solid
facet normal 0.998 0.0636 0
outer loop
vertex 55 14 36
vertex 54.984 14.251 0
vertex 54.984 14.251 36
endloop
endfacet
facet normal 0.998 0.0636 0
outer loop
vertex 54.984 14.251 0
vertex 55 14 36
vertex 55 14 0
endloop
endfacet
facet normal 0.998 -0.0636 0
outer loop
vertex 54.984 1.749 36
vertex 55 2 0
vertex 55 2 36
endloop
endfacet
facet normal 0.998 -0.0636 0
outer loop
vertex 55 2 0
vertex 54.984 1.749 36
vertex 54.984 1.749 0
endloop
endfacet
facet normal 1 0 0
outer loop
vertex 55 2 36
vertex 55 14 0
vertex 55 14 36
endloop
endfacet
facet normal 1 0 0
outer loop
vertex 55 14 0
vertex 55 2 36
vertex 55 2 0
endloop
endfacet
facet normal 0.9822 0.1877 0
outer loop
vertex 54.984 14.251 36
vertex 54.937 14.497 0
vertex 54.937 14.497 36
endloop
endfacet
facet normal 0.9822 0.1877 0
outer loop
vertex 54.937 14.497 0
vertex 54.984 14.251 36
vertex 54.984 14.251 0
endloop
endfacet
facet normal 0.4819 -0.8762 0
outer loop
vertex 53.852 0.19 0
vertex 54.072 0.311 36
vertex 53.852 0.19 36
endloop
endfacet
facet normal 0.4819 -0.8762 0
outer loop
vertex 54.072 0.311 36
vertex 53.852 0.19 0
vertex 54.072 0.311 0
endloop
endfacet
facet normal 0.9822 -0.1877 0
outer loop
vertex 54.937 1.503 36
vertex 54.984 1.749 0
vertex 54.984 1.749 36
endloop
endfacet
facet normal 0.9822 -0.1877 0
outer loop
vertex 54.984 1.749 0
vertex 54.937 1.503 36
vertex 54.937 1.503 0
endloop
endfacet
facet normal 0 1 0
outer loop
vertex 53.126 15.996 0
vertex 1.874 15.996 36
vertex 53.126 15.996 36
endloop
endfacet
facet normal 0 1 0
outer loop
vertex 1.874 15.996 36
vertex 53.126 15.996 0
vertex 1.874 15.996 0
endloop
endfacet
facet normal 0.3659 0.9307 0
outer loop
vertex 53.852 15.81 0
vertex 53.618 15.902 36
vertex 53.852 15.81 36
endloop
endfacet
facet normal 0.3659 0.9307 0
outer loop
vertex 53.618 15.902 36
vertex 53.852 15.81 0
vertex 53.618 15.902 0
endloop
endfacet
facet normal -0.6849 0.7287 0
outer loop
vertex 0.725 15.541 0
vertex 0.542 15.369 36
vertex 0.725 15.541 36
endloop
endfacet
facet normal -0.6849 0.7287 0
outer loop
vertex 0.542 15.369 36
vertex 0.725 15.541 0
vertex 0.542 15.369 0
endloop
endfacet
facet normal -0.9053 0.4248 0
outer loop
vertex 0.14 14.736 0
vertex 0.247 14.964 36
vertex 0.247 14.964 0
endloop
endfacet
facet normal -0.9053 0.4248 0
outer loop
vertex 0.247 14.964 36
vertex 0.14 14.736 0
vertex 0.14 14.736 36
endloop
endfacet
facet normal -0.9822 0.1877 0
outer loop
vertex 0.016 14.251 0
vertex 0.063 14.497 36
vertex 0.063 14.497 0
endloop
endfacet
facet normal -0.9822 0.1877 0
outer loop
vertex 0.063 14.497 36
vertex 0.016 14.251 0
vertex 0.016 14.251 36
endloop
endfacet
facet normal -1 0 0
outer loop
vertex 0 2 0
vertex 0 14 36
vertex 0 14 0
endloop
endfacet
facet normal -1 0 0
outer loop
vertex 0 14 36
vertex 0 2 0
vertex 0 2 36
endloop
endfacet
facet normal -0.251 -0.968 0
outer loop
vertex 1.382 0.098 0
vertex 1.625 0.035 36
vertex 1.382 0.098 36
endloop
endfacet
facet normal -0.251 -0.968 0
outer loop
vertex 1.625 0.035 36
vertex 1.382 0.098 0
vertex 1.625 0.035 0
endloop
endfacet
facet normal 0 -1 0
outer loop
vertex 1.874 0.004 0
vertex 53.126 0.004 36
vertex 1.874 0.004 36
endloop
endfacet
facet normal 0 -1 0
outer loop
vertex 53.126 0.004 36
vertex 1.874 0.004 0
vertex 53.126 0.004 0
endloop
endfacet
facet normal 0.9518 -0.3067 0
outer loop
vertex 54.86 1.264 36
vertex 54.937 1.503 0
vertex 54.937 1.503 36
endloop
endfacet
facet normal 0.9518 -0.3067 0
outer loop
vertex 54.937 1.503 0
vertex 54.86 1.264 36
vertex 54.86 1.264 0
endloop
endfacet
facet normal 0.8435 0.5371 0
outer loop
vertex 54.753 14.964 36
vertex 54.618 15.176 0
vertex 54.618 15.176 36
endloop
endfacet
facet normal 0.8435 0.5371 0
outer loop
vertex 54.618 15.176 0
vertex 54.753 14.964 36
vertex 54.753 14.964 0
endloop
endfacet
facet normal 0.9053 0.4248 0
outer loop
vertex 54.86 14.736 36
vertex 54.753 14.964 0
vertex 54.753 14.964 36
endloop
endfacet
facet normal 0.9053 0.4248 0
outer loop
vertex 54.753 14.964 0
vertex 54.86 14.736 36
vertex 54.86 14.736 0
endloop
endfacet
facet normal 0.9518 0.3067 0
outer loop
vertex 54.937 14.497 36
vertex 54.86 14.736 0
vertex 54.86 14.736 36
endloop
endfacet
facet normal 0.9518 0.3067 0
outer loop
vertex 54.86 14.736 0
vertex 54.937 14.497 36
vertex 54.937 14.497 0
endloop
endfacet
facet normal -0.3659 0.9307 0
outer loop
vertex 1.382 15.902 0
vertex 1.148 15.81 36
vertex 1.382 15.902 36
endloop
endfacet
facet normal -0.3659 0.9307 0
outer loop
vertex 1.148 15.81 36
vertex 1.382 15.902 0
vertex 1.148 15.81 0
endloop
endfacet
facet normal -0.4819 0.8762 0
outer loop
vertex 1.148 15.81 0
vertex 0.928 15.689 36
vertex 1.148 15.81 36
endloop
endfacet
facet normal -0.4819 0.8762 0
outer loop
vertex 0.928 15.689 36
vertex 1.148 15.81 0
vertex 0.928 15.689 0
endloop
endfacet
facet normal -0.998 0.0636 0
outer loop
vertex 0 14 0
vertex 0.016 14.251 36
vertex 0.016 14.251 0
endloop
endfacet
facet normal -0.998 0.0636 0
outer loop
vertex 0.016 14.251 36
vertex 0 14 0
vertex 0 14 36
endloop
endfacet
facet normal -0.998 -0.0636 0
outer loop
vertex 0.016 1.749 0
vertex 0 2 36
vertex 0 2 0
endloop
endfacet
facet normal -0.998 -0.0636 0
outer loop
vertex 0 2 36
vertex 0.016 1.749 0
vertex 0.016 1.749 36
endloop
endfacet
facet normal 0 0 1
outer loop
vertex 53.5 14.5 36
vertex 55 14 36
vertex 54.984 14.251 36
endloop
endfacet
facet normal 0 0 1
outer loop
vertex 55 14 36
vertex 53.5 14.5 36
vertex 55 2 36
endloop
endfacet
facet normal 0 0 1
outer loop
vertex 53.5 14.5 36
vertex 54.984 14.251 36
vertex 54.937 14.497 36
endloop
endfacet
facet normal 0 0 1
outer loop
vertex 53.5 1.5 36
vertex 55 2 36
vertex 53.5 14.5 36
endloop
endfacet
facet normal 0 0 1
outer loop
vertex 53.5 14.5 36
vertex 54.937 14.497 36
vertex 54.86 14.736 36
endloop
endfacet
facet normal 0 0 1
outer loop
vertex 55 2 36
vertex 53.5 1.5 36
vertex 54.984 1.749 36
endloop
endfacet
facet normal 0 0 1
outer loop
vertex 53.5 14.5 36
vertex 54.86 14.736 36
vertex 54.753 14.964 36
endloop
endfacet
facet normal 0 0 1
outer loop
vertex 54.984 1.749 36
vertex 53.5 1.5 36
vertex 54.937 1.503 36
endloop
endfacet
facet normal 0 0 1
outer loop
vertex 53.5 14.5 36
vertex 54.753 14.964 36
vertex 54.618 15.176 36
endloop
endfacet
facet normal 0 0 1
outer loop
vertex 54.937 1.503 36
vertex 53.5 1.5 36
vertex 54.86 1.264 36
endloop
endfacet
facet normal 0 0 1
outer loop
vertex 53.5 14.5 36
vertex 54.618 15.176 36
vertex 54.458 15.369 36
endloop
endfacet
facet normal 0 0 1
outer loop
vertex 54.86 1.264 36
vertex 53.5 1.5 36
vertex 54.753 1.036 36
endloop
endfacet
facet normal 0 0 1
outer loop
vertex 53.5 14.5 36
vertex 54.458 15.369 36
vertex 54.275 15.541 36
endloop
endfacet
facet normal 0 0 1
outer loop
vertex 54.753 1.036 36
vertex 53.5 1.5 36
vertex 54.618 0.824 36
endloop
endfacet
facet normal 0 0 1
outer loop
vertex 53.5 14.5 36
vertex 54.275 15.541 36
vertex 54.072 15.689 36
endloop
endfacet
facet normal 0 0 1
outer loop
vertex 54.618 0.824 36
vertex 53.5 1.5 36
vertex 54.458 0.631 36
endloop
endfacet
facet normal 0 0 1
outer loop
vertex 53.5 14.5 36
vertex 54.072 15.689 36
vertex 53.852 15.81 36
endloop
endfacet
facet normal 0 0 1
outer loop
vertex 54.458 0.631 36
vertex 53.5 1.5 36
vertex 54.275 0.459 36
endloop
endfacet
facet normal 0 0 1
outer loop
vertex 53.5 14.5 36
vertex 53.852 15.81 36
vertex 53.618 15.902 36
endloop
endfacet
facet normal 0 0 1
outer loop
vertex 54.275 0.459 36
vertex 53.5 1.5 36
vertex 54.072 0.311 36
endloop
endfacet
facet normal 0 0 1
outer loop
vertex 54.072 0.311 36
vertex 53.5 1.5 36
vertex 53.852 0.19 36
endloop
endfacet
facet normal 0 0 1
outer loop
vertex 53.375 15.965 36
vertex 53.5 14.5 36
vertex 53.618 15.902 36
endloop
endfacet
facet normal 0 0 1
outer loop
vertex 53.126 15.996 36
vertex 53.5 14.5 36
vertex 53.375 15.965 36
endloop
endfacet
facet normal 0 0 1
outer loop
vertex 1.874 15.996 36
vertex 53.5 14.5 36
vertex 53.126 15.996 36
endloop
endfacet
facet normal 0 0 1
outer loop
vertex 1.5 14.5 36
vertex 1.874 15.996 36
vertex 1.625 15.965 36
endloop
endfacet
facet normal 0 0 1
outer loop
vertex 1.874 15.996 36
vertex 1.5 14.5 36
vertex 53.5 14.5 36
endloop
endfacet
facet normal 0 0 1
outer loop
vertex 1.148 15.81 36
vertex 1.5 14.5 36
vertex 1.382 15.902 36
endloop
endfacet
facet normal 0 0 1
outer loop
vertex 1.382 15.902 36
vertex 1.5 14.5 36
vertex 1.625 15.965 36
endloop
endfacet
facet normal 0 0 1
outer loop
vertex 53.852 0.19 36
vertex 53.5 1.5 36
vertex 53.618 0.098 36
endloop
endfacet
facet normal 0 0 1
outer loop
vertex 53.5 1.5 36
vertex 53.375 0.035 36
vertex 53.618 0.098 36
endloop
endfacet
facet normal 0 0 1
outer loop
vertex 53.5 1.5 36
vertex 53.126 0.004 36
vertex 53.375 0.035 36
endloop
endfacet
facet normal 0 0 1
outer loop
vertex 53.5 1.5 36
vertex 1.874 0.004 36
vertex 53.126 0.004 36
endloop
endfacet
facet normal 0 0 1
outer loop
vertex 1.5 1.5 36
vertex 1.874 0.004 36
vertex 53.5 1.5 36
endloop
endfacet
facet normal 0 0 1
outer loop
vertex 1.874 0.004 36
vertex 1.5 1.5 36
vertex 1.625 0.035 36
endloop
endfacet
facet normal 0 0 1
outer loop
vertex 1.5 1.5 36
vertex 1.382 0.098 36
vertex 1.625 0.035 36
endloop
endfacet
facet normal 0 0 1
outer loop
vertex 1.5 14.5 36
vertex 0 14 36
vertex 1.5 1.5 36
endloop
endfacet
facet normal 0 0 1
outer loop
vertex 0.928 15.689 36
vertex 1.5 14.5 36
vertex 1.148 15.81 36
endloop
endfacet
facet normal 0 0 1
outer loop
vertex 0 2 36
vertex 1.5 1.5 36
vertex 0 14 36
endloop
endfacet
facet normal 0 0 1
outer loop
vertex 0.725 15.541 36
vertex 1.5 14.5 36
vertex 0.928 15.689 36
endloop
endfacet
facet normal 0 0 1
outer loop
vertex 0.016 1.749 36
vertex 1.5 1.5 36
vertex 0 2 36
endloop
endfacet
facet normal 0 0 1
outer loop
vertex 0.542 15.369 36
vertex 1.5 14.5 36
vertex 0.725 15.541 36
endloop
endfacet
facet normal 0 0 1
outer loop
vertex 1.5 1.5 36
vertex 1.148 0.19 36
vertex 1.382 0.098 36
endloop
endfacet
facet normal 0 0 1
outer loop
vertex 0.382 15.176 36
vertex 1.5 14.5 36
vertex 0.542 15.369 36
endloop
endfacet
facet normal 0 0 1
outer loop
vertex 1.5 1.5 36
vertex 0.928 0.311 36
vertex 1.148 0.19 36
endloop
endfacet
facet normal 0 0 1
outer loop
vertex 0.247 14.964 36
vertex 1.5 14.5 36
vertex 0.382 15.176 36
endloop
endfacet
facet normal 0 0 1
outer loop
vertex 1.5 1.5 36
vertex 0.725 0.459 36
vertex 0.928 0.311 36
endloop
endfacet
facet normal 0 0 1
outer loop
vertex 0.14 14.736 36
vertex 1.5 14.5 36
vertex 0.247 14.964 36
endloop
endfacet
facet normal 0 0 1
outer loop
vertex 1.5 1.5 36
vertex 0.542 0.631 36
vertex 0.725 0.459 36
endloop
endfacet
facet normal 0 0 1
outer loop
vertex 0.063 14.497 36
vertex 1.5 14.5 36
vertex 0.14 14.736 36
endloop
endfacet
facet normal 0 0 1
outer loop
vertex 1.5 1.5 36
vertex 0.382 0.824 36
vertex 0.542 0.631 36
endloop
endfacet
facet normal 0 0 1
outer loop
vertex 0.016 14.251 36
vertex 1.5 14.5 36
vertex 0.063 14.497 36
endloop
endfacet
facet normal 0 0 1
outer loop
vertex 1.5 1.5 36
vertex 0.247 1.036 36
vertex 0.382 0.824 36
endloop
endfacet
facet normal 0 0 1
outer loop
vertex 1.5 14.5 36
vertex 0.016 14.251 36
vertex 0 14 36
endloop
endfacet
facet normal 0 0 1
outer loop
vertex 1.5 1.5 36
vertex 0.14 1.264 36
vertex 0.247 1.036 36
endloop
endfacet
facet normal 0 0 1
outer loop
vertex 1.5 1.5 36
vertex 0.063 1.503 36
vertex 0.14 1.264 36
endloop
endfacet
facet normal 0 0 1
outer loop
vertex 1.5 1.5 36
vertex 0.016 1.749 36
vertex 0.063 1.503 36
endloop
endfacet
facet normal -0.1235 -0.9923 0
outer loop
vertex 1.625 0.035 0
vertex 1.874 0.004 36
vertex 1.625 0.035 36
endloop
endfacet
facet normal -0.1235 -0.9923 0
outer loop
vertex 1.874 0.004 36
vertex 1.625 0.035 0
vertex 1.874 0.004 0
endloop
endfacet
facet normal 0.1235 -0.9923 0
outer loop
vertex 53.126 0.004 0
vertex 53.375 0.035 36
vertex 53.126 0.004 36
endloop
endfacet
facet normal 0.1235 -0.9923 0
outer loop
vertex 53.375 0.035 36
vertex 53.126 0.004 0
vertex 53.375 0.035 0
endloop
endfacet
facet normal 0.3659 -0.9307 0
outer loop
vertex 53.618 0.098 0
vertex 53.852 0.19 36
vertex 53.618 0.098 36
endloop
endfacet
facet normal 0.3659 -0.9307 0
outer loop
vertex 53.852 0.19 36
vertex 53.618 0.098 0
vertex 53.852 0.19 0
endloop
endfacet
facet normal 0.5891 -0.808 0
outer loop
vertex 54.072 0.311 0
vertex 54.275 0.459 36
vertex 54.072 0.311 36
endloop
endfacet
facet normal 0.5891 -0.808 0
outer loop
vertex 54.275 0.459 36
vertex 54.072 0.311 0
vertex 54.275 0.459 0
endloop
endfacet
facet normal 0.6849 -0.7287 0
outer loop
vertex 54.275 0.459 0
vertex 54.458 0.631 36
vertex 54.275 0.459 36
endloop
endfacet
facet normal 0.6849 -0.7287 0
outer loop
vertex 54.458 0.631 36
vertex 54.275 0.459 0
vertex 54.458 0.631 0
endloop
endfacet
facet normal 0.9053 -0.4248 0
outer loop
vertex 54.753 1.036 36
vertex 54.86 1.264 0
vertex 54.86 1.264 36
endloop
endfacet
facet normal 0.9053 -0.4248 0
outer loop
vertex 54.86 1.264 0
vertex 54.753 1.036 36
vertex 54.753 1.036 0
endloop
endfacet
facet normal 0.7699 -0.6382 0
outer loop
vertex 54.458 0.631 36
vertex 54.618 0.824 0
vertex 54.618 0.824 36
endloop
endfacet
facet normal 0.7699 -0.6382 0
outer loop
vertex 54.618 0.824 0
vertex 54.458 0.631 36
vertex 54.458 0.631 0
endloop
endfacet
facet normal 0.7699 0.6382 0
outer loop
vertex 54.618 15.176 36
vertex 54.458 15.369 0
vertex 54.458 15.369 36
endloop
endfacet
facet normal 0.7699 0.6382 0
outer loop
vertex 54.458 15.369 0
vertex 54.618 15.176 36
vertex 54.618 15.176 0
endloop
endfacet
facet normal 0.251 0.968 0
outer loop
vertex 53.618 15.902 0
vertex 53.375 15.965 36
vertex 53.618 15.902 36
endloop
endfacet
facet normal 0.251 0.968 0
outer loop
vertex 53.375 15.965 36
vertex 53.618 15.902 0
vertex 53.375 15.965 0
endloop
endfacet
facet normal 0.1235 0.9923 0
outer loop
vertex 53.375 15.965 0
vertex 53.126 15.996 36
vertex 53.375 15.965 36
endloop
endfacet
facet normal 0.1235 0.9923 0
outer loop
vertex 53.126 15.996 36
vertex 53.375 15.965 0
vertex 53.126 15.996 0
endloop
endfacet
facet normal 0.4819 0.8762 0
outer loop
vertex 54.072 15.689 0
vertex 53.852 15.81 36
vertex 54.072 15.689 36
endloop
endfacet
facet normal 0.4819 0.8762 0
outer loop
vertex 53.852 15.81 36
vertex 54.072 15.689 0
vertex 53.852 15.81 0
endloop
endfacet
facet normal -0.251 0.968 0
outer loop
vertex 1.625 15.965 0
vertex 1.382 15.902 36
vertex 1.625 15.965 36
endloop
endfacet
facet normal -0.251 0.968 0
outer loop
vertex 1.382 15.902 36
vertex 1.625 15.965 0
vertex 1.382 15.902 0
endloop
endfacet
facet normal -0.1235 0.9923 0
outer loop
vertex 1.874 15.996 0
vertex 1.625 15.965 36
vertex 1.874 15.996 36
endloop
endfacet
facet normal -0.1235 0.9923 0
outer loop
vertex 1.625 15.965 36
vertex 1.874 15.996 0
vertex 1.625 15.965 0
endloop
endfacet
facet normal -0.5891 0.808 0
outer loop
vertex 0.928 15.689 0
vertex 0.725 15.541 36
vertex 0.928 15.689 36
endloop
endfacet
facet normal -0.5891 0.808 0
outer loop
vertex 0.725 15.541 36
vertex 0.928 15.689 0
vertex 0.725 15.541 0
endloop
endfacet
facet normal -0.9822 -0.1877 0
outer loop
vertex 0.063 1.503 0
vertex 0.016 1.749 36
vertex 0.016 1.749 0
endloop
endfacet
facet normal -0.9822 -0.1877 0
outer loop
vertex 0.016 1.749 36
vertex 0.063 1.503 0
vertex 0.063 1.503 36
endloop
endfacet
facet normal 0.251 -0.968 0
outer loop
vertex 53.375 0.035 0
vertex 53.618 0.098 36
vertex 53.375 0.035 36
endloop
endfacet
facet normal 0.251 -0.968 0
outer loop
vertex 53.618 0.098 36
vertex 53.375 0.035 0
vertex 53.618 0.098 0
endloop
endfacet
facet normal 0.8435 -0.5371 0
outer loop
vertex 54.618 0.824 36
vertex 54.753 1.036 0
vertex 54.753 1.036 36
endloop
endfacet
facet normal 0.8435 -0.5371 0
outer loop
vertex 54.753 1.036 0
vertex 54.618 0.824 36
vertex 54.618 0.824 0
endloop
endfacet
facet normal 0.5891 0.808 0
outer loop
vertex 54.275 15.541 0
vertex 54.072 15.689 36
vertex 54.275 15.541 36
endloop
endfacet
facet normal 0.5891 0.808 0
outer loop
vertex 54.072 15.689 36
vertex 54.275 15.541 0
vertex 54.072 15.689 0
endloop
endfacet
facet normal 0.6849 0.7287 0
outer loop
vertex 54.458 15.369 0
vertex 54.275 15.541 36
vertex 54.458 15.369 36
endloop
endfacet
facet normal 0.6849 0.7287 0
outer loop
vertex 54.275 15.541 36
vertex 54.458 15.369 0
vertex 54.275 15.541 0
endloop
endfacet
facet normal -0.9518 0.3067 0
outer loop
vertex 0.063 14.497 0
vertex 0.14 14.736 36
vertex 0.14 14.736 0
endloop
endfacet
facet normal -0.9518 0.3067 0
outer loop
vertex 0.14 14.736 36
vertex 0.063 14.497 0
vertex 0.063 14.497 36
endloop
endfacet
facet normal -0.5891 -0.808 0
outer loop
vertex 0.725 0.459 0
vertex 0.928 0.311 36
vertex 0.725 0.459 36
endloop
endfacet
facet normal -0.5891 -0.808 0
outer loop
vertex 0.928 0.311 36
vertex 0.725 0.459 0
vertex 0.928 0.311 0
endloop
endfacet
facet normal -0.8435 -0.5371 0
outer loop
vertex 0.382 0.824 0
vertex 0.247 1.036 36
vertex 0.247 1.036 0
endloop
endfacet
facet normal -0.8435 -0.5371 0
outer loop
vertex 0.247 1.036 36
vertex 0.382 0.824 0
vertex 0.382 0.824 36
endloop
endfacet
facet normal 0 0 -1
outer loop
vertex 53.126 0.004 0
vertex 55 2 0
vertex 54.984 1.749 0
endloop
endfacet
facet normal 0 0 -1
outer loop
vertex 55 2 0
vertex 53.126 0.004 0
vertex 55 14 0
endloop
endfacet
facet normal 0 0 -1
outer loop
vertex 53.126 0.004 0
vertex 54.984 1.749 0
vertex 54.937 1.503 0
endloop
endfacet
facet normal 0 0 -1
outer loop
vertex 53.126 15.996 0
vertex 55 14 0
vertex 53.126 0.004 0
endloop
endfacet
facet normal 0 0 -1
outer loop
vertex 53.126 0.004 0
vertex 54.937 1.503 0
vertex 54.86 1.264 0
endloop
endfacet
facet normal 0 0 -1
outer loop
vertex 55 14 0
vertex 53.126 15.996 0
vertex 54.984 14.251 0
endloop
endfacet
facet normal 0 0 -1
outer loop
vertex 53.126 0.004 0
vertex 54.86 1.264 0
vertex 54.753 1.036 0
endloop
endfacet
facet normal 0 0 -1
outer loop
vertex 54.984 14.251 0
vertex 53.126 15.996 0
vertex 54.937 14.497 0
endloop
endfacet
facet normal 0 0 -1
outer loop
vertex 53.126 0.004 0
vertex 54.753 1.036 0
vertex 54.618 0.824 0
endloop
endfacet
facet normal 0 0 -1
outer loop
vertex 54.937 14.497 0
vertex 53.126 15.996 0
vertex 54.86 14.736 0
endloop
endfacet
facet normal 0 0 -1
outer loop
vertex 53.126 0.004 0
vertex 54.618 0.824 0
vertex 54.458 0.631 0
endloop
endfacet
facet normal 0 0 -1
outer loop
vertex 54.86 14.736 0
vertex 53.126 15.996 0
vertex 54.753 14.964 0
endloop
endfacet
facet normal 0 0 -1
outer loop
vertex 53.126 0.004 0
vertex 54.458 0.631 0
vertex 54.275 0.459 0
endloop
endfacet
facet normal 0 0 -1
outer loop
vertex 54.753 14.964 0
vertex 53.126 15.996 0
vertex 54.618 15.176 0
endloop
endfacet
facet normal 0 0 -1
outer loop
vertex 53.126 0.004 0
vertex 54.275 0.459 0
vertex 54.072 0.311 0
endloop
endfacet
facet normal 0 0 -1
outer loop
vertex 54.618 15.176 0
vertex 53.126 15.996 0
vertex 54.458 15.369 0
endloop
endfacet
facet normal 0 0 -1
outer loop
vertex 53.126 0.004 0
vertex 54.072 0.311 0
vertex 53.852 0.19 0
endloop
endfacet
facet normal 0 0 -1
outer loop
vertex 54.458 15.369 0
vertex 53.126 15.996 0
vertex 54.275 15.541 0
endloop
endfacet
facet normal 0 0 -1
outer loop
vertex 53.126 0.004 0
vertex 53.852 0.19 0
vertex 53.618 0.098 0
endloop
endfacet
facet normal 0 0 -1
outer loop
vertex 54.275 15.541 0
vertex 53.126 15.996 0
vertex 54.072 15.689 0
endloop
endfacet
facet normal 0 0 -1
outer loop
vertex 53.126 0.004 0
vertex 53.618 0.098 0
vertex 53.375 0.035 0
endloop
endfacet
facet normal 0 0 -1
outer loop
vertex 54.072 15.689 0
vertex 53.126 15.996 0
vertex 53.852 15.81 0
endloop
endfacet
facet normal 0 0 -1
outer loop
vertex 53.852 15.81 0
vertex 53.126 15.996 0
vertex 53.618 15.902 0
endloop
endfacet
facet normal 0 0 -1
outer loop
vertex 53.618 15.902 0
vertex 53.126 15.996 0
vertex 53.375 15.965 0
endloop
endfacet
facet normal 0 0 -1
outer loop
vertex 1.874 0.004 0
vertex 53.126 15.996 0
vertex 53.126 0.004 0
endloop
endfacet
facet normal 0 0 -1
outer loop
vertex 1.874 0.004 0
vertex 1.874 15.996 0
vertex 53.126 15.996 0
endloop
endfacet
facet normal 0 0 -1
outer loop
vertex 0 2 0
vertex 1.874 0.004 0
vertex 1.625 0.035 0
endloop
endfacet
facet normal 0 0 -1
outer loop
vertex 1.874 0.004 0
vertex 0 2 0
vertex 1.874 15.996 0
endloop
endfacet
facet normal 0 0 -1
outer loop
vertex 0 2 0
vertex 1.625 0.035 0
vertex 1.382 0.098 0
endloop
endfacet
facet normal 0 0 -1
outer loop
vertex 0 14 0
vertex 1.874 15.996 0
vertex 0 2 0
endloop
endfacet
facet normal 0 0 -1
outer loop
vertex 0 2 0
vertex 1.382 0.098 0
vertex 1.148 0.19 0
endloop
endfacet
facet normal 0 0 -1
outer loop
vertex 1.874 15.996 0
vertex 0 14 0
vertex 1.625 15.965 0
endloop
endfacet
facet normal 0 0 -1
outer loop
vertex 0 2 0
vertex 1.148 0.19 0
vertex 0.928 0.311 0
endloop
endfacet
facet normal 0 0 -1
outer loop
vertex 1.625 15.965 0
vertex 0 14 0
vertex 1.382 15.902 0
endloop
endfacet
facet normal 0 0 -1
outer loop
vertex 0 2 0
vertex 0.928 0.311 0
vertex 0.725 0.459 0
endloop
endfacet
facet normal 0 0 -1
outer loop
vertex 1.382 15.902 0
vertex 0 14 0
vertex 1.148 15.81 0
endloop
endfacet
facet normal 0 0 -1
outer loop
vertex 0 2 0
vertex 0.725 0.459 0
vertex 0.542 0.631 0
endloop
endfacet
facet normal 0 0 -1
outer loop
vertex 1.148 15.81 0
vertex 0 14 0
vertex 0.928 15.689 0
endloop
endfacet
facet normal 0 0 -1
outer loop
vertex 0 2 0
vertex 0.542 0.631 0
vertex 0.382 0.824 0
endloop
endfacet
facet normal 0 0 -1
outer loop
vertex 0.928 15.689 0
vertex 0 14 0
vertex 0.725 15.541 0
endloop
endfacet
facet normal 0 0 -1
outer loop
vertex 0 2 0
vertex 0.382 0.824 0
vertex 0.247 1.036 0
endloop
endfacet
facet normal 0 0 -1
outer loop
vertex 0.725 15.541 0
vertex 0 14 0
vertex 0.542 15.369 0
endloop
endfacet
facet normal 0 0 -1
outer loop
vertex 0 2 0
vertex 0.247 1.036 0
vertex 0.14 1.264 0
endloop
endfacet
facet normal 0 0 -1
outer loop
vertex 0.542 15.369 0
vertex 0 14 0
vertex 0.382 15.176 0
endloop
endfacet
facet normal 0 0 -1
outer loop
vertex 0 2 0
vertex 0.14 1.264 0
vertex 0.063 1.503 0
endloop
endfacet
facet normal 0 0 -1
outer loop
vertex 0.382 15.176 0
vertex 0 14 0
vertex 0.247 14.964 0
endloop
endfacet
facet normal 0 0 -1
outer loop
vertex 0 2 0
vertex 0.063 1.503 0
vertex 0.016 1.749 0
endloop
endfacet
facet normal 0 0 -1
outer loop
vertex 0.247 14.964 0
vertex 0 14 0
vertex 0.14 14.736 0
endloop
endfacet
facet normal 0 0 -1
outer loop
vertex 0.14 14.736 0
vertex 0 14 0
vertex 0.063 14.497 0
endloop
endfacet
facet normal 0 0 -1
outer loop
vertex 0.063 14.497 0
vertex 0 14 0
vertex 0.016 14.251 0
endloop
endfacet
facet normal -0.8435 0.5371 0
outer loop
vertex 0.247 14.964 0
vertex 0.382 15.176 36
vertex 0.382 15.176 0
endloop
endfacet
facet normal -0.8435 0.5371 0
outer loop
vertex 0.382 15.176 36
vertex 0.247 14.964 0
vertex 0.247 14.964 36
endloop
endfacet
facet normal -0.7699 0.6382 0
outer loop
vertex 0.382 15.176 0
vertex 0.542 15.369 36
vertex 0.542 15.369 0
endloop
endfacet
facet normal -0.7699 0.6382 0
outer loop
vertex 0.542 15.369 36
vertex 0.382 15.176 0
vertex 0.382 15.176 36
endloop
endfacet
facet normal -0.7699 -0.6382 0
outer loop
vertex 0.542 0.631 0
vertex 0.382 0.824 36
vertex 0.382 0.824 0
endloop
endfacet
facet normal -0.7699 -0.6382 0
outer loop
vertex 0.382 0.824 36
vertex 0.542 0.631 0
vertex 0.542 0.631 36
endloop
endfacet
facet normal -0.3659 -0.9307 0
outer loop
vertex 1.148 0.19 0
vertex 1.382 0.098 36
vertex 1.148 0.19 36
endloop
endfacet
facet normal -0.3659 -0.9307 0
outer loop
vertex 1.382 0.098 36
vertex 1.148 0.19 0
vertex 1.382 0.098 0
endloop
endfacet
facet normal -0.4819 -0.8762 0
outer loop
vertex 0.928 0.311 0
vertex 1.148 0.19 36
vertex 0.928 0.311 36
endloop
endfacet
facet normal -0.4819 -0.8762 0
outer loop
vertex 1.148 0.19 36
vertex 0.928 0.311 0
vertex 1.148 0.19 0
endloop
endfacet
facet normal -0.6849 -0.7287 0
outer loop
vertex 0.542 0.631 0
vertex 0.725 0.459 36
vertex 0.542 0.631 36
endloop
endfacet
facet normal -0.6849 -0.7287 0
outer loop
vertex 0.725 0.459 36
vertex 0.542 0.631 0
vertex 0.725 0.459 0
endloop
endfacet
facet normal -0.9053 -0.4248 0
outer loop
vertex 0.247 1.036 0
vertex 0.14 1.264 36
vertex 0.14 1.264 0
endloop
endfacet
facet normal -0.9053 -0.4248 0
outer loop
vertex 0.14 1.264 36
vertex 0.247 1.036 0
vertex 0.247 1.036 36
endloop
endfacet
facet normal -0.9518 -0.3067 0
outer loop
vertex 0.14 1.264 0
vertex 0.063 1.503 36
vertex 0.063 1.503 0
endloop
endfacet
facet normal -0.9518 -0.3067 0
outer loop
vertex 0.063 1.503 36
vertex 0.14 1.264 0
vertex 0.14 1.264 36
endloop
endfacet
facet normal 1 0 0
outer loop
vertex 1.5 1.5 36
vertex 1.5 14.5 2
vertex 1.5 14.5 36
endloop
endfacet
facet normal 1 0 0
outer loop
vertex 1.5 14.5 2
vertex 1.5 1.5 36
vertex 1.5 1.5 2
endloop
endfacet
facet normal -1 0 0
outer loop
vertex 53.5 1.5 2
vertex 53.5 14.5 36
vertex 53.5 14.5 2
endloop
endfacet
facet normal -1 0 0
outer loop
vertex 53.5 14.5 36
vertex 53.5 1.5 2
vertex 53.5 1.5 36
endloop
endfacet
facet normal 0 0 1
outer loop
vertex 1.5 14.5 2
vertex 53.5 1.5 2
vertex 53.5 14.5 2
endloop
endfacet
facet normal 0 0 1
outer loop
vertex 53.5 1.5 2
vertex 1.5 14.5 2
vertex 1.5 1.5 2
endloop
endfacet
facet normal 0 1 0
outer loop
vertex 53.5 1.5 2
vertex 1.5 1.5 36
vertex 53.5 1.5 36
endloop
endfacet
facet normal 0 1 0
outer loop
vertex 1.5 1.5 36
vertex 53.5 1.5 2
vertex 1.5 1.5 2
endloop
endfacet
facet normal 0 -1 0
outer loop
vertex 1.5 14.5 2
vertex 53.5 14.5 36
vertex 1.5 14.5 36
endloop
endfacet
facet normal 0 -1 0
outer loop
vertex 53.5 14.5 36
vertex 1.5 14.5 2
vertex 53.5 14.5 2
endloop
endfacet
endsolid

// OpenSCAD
length = 55;
width = 16;
height = 36;
floorThickness = 2;
wallThickness = 1.5;

difference() {    
    $fn=50;
    minkowski()
    {
      translate([2,2,0])
        cube([length-4, width-4, height - 1]);
      cylinder(r=2,h=1);
    }
    
    //cube([length, width, height]);
    translate([wallThickness, wallThickness, floorThickness])
        cube([length - wallThickness * 2, width - wallThickness * 2, height - floorThickness]);
}
